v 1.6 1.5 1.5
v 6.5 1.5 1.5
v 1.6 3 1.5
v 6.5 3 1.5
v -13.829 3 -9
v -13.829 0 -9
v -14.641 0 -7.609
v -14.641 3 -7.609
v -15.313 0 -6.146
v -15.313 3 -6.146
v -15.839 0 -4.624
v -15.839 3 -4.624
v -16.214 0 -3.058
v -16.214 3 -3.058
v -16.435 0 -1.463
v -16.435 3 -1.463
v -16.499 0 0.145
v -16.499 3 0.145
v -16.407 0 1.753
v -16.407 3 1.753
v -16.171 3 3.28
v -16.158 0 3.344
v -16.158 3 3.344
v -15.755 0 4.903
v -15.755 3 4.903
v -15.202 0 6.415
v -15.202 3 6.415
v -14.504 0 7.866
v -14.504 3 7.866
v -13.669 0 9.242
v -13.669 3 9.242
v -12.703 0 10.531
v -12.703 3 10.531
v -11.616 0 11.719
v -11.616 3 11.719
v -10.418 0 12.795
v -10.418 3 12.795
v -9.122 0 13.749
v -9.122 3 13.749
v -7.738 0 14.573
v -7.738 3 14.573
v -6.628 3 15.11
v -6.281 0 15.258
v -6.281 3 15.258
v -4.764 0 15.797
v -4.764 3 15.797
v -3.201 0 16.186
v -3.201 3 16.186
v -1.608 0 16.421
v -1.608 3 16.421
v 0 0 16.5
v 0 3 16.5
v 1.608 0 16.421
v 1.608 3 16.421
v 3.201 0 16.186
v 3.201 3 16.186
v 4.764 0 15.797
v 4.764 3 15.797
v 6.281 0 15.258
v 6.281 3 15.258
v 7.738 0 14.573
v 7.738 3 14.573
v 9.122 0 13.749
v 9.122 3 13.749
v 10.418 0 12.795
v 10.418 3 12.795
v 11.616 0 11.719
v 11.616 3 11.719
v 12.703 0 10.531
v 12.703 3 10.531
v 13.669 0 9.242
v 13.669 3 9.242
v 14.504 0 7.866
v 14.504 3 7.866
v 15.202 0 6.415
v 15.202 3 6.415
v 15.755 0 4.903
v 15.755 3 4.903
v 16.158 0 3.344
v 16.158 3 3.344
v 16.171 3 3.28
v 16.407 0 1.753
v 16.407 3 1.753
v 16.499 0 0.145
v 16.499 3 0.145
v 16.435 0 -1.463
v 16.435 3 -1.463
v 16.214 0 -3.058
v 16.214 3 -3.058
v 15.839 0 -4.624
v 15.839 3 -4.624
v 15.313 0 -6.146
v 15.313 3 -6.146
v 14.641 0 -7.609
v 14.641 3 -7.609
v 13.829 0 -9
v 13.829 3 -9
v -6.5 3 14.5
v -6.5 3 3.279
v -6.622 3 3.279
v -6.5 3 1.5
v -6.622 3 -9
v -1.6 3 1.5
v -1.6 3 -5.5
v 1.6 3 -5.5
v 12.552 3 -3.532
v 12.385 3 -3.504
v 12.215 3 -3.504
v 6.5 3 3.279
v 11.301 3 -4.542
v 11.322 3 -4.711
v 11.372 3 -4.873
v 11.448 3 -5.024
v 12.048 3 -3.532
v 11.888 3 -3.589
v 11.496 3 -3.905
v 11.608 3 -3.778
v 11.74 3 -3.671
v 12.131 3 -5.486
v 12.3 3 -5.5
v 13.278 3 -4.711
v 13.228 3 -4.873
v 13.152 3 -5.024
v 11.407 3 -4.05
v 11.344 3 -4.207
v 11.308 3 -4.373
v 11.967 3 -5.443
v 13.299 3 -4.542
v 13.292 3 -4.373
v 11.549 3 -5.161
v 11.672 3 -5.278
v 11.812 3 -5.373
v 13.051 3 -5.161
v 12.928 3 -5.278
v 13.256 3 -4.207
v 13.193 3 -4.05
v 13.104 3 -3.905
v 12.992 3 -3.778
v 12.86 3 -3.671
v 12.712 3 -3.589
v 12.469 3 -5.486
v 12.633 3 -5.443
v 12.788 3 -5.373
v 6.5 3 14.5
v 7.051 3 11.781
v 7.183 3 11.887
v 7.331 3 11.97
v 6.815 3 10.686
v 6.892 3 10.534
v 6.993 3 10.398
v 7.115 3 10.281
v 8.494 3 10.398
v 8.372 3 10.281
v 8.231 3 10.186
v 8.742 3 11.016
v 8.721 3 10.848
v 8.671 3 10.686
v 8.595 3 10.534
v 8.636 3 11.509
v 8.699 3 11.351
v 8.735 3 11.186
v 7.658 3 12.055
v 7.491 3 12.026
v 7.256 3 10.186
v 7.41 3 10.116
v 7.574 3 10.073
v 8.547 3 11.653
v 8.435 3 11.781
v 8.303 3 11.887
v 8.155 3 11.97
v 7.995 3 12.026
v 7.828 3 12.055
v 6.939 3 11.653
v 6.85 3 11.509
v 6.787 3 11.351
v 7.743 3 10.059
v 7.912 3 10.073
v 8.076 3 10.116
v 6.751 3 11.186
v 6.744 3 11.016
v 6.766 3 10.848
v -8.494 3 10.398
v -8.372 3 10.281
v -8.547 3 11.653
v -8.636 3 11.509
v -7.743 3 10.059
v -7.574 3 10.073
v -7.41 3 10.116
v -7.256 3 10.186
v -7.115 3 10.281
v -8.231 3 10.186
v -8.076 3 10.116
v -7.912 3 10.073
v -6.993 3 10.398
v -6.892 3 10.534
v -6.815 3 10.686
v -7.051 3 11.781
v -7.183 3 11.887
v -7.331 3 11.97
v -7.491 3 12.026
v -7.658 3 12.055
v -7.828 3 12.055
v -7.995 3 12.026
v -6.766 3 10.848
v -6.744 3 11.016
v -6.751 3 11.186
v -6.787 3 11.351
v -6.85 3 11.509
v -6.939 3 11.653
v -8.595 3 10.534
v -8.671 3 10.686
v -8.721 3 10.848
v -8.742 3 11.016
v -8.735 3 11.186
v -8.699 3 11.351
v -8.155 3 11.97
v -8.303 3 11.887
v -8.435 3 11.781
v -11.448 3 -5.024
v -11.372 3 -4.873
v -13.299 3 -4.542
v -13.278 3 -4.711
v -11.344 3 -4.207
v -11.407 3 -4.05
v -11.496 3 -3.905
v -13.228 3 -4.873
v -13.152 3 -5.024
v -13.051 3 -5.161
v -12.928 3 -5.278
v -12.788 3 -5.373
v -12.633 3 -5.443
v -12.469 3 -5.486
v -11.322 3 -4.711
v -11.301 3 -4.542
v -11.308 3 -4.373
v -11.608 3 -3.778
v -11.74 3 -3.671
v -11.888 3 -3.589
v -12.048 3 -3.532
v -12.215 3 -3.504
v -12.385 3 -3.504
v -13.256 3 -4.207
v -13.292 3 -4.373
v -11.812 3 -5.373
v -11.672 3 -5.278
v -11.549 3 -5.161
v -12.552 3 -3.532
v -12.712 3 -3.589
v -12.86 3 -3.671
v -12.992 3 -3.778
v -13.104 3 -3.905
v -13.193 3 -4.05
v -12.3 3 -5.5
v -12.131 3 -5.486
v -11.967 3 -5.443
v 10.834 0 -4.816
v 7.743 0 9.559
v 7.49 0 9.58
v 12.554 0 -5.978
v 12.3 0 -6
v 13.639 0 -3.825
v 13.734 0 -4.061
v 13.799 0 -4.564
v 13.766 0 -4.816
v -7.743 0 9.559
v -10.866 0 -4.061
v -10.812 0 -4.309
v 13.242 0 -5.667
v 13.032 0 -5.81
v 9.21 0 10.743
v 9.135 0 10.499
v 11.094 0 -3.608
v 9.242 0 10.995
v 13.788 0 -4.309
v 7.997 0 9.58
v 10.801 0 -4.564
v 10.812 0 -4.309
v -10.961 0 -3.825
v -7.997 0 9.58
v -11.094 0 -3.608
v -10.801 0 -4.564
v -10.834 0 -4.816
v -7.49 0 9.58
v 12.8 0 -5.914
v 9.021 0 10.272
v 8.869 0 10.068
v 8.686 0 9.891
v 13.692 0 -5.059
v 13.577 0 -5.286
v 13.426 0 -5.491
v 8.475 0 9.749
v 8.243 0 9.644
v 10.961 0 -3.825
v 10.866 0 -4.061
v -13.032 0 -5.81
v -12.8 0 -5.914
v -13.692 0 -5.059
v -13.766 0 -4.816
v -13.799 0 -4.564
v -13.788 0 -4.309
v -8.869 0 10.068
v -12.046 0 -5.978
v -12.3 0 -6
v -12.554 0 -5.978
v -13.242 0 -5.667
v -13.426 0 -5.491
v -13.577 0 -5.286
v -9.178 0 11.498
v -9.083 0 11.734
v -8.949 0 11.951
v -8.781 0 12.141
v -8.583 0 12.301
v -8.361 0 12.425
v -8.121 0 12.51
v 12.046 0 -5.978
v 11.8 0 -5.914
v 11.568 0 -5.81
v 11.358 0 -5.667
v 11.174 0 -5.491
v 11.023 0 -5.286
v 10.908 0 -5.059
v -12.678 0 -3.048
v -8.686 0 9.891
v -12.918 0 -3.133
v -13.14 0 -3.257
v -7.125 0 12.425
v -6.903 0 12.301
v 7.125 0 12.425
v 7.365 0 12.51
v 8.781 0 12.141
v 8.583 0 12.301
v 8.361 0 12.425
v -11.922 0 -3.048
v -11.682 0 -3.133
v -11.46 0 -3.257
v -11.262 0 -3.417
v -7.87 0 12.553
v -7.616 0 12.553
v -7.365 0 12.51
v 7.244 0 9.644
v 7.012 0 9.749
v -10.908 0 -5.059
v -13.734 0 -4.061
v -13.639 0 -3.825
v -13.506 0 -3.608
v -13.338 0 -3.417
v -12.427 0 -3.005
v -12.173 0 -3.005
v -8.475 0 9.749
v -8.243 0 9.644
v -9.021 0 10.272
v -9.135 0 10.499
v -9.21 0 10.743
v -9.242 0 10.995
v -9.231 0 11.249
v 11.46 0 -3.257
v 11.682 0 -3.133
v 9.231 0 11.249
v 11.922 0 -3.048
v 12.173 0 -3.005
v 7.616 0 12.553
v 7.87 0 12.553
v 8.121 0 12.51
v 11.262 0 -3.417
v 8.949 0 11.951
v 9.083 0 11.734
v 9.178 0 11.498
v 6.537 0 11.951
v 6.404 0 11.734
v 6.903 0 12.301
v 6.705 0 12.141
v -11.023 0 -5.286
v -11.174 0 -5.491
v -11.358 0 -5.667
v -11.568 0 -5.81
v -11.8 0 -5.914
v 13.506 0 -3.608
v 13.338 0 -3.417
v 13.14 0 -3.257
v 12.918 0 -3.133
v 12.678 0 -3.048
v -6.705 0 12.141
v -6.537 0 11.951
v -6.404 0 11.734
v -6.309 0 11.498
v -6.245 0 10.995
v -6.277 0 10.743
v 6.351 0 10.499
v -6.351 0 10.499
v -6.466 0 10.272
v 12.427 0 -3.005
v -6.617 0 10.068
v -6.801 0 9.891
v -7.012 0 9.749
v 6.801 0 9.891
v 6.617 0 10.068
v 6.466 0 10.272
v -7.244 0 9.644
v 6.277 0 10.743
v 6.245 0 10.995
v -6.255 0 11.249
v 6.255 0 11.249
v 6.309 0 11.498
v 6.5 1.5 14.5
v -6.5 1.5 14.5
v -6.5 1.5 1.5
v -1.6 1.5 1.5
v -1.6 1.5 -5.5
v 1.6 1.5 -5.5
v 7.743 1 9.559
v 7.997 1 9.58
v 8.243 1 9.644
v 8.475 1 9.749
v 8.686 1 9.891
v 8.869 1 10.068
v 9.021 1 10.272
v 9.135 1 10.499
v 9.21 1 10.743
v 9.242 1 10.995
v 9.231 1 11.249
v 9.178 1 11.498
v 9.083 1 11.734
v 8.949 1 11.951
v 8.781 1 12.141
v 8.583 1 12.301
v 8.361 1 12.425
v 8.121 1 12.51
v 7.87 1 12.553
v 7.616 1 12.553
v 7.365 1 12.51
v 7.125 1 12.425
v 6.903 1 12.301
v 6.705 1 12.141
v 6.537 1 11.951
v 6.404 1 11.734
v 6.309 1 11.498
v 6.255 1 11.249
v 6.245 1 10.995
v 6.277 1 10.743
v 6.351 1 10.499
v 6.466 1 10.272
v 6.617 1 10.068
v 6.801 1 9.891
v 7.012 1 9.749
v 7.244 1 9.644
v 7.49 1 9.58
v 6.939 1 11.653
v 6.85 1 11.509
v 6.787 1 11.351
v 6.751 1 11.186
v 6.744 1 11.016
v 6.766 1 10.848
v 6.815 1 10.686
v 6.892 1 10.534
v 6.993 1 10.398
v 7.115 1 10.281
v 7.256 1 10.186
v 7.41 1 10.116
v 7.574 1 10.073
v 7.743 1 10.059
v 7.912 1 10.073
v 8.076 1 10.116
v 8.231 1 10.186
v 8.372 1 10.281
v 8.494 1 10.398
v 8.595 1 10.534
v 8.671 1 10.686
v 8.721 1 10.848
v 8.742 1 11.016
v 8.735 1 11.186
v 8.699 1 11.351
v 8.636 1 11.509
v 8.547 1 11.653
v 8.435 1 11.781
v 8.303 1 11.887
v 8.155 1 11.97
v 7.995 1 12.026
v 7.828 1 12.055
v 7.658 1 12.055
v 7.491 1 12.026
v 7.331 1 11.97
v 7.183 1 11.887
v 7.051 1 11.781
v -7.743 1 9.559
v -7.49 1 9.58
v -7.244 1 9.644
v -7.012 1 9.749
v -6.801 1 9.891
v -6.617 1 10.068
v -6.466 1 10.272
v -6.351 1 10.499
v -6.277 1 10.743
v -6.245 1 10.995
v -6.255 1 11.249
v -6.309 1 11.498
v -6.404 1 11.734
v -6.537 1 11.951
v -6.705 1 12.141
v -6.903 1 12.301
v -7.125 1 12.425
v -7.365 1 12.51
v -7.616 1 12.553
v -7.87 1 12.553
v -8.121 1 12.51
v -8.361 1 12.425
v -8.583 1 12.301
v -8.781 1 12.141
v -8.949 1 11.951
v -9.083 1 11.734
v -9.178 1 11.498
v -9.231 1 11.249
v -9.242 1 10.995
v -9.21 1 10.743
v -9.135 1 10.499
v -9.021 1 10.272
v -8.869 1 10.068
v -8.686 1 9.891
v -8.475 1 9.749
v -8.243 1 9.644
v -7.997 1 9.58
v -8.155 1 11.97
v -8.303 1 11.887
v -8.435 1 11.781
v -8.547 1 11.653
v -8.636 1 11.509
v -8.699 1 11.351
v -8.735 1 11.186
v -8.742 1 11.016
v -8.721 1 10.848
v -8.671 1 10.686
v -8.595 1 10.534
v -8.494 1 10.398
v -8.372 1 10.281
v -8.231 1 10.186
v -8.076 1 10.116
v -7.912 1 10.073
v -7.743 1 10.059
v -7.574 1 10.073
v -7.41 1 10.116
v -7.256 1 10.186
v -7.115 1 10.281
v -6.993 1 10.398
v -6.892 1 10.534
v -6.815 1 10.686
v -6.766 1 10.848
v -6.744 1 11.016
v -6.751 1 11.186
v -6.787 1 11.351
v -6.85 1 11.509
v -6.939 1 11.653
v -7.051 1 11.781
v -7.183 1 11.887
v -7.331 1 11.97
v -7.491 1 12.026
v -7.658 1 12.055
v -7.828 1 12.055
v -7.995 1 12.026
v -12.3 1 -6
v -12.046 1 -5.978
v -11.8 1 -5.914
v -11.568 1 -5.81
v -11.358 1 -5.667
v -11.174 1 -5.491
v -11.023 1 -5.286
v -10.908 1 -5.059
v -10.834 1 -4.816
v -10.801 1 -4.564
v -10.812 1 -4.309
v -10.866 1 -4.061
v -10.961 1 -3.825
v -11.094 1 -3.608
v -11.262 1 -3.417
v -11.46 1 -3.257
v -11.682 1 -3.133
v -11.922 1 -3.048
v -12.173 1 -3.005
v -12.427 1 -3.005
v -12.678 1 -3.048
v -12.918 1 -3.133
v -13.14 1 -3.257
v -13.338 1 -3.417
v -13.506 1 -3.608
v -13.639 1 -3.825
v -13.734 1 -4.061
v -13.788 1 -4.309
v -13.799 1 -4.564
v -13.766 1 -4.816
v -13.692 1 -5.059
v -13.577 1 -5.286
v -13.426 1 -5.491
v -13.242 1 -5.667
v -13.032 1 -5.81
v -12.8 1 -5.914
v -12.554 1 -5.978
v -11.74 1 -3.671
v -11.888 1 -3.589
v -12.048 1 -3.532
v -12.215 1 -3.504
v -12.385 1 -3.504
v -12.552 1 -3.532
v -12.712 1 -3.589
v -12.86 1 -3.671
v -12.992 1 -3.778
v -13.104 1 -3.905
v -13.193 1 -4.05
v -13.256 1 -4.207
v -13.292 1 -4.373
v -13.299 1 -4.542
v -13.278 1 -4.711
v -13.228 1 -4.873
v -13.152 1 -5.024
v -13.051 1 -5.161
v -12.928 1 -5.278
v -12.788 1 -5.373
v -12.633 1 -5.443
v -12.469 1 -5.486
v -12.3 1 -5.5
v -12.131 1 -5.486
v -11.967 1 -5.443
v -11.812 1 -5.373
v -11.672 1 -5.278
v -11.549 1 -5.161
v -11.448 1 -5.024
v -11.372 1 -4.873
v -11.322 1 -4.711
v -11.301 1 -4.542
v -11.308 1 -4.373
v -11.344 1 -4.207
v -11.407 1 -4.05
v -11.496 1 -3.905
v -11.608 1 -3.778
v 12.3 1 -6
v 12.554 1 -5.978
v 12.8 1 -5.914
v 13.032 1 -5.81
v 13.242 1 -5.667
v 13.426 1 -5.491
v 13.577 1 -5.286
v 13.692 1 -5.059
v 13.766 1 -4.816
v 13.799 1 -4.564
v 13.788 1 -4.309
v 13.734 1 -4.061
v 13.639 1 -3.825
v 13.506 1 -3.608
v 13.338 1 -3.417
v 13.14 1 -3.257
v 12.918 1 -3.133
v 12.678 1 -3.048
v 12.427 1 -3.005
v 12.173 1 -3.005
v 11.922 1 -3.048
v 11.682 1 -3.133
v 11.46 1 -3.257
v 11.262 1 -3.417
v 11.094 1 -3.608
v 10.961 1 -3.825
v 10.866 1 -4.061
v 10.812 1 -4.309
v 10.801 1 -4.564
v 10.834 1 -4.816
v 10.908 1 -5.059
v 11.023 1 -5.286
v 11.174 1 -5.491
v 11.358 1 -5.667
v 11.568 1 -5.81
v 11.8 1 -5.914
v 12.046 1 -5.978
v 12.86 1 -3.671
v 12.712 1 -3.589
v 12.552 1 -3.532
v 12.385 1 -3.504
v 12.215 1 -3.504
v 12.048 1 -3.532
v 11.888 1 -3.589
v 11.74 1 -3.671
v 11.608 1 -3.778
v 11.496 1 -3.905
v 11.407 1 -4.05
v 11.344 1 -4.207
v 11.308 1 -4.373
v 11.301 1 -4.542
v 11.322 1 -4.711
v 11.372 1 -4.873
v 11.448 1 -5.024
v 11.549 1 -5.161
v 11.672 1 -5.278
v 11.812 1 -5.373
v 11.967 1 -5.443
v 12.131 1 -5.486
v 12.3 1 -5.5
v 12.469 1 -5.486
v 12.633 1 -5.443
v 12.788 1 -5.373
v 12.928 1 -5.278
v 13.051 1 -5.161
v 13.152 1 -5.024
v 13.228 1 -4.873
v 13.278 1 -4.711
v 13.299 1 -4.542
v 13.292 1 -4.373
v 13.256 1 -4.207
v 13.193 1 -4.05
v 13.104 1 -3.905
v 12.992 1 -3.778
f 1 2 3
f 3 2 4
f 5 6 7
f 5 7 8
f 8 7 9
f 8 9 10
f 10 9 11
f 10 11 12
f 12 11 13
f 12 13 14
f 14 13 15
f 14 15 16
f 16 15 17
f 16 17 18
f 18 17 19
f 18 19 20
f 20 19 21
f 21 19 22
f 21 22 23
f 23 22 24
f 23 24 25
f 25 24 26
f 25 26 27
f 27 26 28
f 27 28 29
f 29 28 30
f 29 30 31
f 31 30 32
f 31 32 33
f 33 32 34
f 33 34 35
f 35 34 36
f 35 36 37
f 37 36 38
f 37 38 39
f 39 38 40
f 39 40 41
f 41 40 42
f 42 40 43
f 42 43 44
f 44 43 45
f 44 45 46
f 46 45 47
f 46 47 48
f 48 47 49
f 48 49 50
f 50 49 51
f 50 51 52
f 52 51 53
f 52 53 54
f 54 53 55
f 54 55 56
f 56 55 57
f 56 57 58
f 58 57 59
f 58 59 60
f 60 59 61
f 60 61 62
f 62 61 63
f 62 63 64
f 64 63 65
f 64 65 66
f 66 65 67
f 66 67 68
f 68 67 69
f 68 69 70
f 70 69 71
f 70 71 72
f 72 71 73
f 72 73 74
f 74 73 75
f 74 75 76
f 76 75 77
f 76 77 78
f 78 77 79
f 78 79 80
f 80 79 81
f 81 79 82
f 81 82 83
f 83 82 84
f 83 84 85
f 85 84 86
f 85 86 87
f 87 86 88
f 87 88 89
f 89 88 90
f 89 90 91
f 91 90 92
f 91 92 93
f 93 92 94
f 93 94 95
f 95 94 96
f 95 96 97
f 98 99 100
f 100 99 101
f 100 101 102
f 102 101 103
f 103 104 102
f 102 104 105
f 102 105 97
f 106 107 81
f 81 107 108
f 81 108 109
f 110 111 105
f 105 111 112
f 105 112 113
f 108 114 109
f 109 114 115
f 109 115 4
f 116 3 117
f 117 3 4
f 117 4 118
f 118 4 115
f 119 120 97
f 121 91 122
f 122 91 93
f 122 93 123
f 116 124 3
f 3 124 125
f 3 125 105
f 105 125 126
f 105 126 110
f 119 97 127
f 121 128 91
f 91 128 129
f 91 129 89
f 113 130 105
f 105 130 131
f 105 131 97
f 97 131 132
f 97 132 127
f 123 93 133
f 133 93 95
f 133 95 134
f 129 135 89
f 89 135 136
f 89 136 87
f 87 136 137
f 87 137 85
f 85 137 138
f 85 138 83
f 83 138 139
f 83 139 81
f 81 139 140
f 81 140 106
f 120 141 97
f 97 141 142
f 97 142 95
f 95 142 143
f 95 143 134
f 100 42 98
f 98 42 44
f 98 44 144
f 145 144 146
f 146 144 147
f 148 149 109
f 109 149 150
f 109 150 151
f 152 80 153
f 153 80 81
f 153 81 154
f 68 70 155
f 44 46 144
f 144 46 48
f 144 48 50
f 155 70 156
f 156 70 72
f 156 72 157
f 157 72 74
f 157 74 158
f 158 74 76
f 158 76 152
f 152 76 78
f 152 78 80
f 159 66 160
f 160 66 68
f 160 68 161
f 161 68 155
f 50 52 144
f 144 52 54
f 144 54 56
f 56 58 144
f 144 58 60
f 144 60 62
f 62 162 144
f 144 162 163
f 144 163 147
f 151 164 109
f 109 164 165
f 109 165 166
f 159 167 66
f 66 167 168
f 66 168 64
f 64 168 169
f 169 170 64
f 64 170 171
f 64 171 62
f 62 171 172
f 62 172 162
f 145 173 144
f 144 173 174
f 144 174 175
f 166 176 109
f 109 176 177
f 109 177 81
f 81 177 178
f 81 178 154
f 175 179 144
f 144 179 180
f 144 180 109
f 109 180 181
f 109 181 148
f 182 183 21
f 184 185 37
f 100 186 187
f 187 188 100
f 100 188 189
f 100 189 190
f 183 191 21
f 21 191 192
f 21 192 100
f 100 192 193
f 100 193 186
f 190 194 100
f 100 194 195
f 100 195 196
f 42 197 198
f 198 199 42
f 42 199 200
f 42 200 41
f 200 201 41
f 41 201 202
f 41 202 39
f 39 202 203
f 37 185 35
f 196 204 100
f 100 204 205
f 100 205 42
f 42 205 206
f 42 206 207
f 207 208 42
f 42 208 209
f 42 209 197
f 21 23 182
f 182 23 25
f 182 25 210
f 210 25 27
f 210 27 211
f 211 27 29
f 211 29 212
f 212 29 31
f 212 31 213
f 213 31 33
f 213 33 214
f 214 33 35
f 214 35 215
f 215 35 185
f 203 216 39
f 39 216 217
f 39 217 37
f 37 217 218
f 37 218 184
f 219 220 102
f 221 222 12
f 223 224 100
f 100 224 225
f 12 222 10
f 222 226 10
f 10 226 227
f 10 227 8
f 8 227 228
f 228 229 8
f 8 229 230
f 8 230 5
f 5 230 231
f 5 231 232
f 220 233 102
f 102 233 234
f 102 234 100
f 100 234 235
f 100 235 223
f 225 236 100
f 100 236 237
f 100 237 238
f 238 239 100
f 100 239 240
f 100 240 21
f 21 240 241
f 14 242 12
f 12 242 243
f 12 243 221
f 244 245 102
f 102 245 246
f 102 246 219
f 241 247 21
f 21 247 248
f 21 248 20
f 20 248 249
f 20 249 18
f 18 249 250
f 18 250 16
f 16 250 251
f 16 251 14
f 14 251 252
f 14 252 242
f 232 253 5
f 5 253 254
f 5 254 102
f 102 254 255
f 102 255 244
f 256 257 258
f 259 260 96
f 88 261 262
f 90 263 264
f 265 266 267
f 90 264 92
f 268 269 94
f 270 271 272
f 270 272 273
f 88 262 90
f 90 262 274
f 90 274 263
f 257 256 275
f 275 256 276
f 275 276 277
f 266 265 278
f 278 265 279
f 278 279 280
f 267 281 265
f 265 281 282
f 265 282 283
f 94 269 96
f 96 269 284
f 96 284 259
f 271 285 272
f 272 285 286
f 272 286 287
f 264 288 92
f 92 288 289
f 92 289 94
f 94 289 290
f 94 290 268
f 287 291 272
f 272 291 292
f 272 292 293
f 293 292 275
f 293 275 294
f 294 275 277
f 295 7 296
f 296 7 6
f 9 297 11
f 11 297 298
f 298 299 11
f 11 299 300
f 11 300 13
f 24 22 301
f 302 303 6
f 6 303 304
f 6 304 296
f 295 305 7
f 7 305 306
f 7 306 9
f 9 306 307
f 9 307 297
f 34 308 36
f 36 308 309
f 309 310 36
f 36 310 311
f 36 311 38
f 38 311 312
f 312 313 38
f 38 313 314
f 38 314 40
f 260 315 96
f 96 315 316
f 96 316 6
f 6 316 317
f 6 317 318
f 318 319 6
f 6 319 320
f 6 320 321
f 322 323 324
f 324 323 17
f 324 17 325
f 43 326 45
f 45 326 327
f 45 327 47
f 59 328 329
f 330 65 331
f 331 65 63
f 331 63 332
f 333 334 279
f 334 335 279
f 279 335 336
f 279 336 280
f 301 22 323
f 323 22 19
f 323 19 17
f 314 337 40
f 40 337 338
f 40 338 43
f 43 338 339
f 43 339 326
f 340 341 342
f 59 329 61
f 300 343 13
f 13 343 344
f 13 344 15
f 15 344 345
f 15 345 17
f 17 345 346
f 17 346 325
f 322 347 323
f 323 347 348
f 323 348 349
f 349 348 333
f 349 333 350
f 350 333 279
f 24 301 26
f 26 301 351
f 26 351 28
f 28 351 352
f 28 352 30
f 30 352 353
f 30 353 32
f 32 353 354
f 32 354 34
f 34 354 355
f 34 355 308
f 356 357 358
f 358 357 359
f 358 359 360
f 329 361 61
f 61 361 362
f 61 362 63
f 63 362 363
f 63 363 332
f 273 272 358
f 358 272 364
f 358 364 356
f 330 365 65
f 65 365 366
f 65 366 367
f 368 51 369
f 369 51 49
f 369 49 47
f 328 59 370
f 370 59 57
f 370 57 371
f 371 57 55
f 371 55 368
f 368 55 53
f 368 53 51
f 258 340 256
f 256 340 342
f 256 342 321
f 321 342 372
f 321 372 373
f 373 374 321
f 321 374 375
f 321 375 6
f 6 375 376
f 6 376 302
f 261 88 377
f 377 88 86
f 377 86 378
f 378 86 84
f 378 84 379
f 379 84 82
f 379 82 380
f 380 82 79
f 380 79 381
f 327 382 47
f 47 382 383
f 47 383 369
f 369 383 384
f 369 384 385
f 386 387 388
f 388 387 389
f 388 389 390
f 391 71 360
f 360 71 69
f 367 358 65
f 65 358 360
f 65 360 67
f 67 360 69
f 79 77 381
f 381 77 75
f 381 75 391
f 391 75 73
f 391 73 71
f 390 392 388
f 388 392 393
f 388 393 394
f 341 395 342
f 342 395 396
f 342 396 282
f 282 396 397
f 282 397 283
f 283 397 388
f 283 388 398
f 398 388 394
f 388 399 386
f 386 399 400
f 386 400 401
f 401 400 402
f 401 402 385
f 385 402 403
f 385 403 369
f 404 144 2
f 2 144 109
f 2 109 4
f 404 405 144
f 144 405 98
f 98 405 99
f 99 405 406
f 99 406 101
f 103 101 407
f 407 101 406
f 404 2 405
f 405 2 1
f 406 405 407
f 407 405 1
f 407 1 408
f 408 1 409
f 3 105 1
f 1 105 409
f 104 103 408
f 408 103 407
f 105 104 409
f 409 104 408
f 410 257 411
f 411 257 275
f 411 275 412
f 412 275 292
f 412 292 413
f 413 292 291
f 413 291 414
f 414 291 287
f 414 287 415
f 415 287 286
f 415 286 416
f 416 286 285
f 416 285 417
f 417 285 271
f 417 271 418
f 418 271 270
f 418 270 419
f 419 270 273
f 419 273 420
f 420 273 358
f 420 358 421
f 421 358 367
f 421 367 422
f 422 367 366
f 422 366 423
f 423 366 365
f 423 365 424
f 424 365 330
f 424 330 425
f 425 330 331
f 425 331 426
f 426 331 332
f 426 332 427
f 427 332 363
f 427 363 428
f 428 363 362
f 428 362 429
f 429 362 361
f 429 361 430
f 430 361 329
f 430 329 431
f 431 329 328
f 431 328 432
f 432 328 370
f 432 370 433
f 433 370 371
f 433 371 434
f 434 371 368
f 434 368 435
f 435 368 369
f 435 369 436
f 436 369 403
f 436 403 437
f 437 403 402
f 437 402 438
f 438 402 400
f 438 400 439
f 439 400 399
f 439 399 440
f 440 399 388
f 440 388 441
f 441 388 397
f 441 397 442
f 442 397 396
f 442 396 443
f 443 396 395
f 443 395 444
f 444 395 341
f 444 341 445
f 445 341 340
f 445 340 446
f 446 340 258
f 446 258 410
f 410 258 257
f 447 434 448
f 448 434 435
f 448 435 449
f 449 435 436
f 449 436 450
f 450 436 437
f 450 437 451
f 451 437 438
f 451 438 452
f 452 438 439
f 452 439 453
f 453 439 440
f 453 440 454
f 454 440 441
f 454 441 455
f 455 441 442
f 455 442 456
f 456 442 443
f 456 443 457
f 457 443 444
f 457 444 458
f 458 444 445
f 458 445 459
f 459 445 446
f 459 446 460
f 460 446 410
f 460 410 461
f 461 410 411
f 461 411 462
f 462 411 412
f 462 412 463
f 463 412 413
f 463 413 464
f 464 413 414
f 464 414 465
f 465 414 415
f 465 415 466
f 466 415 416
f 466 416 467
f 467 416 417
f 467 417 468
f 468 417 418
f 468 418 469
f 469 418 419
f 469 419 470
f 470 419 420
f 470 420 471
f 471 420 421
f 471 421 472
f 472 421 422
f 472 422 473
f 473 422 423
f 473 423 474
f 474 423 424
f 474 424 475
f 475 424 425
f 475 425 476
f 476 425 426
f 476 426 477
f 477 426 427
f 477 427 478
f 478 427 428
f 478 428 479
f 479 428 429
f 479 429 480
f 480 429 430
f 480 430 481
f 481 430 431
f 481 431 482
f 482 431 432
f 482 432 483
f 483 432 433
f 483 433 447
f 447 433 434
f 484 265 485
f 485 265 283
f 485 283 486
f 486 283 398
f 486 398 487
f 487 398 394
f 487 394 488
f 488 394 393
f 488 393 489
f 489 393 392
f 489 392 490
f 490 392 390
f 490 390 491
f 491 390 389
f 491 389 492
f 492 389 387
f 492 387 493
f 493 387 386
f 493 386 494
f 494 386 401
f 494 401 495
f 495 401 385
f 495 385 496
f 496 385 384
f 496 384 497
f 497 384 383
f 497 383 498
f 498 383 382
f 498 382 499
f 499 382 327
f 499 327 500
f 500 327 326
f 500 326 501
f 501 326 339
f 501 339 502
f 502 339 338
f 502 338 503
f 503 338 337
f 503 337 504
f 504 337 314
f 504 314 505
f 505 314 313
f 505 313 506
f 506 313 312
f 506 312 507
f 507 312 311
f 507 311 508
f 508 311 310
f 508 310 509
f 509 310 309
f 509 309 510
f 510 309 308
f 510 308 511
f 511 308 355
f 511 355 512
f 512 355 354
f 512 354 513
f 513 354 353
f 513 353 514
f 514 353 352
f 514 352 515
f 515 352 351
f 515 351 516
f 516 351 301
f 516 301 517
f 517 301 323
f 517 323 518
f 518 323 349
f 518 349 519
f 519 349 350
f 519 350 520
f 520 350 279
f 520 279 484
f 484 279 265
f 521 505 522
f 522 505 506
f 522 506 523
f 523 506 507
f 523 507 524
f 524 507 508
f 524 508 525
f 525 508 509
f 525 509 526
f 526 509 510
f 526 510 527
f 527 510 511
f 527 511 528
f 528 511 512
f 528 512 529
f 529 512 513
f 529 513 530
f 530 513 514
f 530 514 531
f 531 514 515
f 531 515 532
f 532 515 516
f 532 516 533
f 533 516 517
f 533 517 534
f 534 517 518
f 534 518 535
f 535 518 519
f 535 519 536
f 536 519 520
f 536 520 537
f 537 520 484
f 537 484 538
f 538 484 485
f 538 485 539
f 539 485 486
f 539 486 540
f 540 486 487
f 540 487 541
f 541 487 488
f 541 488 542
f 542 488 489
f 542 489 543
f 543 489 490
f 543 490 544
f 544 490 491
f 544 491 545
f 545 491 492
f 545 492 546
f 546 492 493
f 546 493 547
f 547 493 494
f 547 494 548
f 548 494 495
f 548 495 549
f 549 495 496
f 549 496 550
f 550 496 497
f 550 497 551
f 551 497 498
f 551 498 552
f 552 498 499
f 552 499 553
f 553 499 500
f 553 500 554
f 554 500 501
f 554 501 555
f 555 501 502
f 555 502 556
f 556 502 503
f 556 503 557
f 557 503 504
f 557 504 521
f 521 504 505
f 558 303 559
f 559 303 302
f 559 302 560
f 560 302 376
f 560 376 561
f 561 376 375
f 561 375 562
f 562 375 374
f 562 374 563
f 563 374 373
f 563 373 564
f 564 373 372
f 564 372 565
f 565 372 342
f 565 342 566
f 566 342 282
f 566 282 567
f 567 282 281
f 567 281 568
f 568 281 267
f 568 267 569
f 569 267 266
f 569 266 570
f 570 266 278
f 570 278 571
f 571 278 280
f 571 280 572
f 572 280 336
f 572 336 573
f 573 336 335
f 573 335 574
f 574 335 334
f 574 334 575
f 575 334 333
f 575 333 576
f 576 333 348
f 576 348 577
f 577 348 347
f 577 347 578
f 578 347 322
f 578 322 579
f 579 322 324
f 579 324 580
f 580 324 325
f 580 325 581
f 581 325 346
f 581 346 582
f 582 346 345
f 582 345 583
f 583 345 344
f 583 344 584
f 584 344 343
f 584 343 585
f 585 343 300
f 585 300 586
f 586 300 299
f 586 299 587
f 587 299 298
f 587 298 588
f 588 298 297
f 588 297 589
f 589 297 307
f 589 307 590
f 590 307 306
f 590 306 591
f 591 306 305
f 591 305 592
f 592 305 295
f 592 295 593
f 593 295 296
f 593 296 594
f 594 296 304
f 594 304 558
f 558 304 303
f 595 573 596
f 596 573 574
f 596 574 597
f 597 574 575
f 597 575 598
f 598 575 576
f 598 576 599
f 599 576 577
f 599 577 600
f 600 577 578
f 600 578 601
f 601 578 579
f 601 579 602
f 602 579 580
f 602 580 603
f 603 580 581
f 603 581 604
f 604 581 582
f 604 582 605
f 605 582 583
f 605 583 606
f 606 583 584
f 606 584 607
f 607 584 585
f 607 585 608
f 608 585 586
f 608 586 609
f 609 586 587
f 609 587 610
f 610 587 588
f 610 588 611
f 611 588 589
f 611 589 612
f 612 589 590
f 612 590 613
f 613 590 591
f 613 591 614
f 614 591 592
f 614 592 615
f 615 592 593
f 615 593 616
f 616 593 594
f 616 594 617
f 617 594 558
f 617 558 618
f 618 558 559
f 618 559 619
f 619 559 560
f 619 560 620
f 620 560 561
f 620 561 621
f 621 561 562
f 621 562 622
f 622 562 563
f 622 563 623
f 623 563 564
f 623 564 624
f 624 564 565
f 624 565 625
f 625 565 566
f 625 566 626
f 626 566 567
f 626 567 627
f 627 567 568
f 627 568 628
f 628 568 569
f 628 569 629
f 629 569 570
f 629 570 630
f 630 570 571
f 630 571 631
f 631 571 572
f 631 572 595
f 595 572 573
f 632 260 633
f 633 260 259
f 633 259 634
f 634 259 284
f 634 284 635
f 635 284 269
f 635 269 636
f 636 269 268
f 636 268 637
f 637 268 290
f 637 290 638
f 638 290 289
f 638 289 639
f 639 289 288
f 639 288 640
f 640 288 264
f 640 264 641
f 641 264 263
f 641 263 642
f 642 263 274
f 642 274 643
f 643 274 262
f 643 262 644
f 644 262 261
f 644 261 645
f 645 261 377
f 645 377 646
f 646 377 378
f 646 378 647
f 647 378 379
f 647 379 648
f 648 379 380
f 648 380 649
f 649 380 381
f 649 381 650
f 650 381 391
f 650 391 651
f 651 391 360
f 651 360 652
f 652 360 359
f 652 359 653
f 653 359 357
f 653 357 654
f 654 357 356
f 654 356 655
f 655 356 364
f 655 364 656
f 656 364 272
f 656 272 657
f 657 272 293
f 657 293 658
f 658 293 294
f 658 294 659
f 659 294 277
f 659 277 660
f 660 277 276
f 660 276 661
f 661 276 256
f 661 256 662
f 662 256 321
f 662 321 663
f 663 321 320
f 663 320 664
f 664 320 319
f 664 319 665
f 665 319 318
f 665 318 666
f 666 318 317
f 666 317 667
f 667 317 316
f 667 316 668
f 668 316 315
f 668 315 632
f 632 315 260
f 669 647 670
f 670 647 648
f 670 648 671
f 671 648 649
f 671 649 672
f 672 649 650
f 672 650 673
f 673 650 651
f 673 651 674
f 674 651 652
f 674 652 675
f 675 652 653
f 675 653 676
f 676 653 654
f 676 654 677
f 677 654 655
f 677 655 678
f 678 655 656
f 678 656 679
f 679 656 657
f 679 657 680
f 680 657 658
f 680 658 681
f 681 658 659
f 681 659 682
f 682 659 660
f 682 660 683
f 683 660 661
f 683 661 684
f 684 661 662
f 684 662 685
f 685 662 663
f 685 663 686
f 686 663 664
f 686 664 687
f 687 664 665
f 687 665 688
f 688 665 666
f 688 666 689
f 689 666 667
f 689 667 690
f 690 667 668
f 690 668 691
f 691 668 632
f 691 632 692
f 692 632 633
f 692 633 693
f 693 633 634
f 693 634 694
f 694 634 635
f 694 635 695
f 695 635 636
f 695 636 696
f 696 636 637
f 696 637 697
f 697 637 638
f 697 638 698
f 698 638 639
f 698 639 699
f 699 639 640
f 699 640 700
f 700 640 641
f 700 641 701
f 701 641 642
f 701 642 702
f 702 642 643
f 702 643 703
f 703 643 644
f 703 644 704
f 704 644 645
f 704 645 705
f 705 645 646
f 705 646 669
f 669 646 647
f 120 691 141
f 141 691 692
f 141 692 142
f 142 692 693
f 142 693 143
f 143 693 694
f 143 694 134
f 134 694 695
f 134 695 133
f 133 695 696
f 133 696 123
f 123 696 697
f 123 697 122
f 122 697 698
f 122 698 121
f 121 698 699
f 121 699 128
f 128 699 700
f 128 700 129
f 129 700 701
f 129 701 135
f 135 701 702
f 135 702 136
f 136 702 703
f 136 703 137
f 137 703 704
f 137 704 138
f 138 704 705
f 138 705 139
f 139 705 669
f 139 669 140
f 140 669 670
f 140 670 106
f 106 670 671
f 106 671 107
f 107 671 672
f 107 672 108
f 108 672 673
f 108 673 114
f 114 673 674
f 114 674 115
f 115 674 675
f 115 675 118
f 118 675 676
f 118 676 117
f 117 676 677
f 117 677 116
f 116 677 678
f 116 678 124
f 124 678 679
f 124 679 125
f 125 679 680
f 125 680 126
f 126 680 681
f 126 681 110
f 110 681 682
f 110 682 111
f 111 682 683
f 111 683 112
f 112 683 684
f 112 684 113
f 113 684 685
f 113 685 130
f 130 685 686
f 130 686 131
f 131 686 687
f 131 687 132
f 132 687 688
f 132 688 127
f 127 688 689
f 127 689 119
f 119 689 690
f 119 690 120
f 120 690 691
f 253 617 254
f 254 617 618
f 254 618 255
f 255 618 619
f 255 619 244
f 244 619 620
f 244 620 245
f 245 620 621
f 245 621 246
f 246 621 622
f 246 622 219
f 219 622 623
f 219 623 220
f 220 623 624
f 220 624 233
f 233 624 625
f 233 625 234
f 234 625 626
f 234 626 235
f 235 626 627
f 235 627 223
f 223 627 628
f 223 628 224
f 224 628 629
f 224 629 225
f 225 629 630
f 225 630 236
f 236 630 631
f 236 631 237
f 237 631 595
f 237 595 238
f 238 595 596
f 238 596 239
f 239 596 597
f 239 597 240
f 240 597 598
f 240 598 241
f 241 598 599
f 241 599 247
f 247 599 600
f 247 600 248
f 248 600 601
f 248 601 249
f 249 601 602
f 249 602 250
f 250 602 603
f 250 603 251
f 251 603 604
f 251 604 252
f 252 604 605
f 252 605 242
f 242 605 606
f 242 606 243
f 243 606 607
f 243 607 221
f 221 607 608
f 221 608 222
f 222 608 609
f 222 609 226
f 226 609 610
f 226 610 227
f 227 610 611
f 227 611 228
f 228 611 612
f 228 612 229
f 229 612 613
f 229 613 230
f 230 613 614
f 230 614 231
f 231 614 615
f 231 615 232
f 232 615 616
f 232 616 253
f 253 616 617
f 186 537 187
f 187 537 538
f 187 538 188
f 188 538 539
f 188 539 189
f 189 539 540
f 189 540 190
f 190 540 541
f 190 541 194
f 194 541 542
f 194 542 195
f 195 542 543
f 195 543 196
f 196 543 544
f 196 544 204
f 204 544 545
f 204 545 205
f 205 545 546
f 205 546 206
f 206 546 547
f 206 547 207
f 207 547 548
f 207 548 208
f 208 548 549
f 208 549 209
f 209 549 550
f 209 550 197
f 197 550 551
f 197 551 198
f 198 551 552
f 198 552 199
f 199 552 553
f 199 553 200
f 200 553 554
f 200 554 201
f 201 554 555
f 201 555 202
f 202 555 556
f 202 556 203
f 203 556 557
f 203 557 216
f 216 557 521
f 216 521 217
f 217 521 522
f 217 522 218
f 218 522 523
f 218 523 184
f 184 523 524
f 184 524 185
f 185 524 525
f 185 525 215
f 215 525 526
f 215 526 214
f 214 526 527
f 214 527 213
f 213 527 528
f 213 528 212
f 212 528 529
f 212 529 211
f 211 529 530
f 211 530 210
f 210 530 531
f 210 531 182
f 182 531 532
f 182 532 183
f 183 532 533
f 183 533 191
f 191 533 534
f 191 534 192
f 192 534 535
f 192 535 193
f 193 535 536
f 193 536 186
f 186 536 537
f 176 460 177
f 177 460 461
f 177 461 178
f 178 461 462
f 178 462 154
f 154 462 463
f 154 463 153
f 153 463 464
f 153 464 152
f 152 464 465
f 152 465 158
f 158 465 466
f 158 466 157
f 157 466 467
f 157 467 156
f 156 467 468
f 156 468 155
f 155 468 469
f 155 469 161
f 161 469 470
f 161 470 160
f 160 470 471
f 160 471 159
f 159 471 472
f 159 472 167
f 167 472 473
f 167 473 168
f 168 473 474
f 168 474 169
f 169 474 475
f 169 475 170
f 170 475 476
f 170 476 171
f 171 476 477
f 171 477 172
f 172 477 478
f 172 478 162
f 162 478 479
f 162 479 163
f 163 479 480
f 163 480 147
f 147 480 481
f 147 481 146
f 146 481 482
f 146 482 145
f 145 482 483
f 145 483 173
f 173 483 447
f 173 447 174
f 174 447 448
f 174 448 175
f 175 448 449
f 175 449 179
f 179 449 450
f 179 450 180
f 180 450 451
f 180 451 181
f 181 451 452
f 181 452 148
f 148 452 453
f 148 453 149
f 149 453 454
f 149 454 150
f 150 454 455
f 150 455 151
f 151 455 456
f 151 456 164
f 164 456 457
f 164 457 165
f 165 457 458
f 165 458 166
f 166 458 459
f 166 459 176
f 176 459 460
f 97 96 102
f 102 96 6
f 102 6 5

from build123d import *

# Parameters (mm, degrees)
SKETCH_1_R          = 16.5
EXTRUDE_1_DEPTH     = 3
SKETCH_2_W          = 13
SKETCH_2_H          = 13
CUT_EXTRUDE_1_DEPTH = 1.5
SKETCH_3_W          = 3.2
SKETCH_3_H          = 7
CUT_EXTRUDE_2_DEPTH = 1.5
SKETCH_4_R          = 1.5
SKETCH_4_R_2        = 1
CUT_EXTRUDE_3_DEPTH = 1
SKETCH_4_2_R        = 1
CUT_EXTRUDE_4_DEPTH = 24.526580712
SKETCH_5_W          = 27.658633372
SKETCH_5_H          = 9.051760597
CUT_EXTRUDE_5_DEPTH = 24.526580712


with BuildPart() as part:
    # 草图1 → 凸台-拉伸1 (new body)
    with BuildSketch(Plane(origin=(0, 0, 0), x_dir=(1, 0, 0), z_dir=(0, 1, 0))):
        with Locations(Location((0, 0, 0), (0, 0, 270))):
            Circle(SKETCH_1_R)
    extrude(amount=EXTRUDE_1_DEPTH)

    # 草图2 → 切除-拉伸1 (cut)
    with BuildSketch(Plane(origin=(0, 3, 0), x_dir=(1, 0, 0), z_dir=(0, 1, 0))):
        with Locations((0, -8)):
            Rectangle(SKETCH_2_W, SKETCH_2_H)
    extrude(amount=-CUT_EXTRUDE_1_DEPTH, mode=Mode.SUBTRACT)

    # 草图3 → 切除-拉伸2 (cut)
    with BuildSketch(Plane(origin=(0, 3, 0), x_dir=(1, 0, 0), z_dir=(0, 1, 0))):
        with Locations((0, 2)):
            Rectangle(SKETCH_3_W, SKETCH_3_H)
    extrude(amount=-CUT_EXTRUDE_2_DEPTH, mode=Mode.SUBTRACT)

    # 草图4 → 切除-拉伸3 (cut)
    # profile 1 of 4: a face of its own
    with BuildSketch(Plane.XZ):
        with Locations(Location((7.743281891, 11.058552598, 0), (0, 0, 270))):
            Circle(SKETCH_4_R)
        with Locations(Location((7.743281891, 11.058552598, 0), (0, 0, 270))):
            Circle(SKETCH_4_R_2, mode=Mode.SUBTRACT)
    # profile 2 of 4: a face of its own
    with BuildSketch(Plane.XZ):
        with Locations(Location((-7.743281891, 11.058552598, 0), (0, 0, 270))):
            Circle(SKETCH_4_R)
        with Locations(Location((-7.743281891, 11.058552598, 0), (0, 0, 270))):
            Circle(SKETCH_4_R_2, mode=Mode.SUBTRACT)
    # profile 3 of 4: a face of its own
    with BuildSketch(Plane.XZ):
        with Locations(Location((-12.3, -4.5, 0), (0, 0, 270))):
            Circle(SKETCH_4_R)
        with Locations(Location((-12.3, -4.5, 0), (0, 0, 270))):
            Circle(SKETCH_4_R_2, mode=Mode.SUBTRACT)
    # profile 4 of 4: a face of its own
    with BuildSketch(Plane.XZ):
        with Locations(Location((12.3, -4.5, 0), (0, 0, 270))):
            Circle(SKETCH_4_R)
        with Locations(Location((12.3, -4.5, 0), (0, 0, 270))):
            Circle(SKETCH_4_R_2, mode=Mode.SUBTRACT)
    extrude(amount=-CUT_EXTRUDE_3_DEPTH, mode=Mode.SUBTRACT)

    # 草图4<2> → 切除-拉伸4 (cut, through all)
    with BuildSketch(Plane.XZ):
        with Locations(Location((7.743281891, 11.058552598, 0), (0, 0, 270))):
            Circle(SKETCH_4_2_R)
        with Locations(Location((-7.743281891, 11.058552598, 0), (0, 0, 270))):
            Circle(SKETCH_4_2_R)
        with Locations(Location((-12.3, -4.5, 0), (0, 0, 270))):
            Circle(SKETCH_4_2_R)
        with Locations(Location((12.3, -4.5, 0), (0, 0, 270))):
            Circle(SKETCH_4_2_R)
    extrude(amount=-CUT_EXTRUDE_4_DEPTH, mode=Mode.SUBTRACT)

    # 草图5 → 切除-拉伸5 (cut, through all)
    with BuildSketch(Plane(origin=(0, 3, 0), x_dir=(1, 0, 0), z_dir=(0, 1, 0))):
        with Locations((0, 13.525880299)):
            Rectangle(SKETCH_5_W, SKETCH_5_H)
    extrude(amount=-CUT_EXTRUDE_5_DEPTH, mode=Mode.SUBTRACT)


solid = part.part
